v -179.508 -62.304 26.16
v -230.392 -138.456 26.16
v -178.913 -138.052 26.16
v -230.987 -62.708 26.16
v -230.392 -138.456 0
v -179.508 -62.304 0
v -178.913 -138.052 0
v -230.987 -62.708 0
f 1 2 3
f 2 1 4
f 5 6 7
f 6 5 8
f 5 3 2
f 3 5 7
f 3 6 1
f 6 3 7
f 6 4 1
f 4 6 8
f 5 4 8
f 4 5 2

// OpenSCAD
translate([-204.950, -100.380, 0]) rotate([0, 0, 0.450]) translate([-25.740, -37.875, 0]) cube([51.480, 75.750, 26.160]);
